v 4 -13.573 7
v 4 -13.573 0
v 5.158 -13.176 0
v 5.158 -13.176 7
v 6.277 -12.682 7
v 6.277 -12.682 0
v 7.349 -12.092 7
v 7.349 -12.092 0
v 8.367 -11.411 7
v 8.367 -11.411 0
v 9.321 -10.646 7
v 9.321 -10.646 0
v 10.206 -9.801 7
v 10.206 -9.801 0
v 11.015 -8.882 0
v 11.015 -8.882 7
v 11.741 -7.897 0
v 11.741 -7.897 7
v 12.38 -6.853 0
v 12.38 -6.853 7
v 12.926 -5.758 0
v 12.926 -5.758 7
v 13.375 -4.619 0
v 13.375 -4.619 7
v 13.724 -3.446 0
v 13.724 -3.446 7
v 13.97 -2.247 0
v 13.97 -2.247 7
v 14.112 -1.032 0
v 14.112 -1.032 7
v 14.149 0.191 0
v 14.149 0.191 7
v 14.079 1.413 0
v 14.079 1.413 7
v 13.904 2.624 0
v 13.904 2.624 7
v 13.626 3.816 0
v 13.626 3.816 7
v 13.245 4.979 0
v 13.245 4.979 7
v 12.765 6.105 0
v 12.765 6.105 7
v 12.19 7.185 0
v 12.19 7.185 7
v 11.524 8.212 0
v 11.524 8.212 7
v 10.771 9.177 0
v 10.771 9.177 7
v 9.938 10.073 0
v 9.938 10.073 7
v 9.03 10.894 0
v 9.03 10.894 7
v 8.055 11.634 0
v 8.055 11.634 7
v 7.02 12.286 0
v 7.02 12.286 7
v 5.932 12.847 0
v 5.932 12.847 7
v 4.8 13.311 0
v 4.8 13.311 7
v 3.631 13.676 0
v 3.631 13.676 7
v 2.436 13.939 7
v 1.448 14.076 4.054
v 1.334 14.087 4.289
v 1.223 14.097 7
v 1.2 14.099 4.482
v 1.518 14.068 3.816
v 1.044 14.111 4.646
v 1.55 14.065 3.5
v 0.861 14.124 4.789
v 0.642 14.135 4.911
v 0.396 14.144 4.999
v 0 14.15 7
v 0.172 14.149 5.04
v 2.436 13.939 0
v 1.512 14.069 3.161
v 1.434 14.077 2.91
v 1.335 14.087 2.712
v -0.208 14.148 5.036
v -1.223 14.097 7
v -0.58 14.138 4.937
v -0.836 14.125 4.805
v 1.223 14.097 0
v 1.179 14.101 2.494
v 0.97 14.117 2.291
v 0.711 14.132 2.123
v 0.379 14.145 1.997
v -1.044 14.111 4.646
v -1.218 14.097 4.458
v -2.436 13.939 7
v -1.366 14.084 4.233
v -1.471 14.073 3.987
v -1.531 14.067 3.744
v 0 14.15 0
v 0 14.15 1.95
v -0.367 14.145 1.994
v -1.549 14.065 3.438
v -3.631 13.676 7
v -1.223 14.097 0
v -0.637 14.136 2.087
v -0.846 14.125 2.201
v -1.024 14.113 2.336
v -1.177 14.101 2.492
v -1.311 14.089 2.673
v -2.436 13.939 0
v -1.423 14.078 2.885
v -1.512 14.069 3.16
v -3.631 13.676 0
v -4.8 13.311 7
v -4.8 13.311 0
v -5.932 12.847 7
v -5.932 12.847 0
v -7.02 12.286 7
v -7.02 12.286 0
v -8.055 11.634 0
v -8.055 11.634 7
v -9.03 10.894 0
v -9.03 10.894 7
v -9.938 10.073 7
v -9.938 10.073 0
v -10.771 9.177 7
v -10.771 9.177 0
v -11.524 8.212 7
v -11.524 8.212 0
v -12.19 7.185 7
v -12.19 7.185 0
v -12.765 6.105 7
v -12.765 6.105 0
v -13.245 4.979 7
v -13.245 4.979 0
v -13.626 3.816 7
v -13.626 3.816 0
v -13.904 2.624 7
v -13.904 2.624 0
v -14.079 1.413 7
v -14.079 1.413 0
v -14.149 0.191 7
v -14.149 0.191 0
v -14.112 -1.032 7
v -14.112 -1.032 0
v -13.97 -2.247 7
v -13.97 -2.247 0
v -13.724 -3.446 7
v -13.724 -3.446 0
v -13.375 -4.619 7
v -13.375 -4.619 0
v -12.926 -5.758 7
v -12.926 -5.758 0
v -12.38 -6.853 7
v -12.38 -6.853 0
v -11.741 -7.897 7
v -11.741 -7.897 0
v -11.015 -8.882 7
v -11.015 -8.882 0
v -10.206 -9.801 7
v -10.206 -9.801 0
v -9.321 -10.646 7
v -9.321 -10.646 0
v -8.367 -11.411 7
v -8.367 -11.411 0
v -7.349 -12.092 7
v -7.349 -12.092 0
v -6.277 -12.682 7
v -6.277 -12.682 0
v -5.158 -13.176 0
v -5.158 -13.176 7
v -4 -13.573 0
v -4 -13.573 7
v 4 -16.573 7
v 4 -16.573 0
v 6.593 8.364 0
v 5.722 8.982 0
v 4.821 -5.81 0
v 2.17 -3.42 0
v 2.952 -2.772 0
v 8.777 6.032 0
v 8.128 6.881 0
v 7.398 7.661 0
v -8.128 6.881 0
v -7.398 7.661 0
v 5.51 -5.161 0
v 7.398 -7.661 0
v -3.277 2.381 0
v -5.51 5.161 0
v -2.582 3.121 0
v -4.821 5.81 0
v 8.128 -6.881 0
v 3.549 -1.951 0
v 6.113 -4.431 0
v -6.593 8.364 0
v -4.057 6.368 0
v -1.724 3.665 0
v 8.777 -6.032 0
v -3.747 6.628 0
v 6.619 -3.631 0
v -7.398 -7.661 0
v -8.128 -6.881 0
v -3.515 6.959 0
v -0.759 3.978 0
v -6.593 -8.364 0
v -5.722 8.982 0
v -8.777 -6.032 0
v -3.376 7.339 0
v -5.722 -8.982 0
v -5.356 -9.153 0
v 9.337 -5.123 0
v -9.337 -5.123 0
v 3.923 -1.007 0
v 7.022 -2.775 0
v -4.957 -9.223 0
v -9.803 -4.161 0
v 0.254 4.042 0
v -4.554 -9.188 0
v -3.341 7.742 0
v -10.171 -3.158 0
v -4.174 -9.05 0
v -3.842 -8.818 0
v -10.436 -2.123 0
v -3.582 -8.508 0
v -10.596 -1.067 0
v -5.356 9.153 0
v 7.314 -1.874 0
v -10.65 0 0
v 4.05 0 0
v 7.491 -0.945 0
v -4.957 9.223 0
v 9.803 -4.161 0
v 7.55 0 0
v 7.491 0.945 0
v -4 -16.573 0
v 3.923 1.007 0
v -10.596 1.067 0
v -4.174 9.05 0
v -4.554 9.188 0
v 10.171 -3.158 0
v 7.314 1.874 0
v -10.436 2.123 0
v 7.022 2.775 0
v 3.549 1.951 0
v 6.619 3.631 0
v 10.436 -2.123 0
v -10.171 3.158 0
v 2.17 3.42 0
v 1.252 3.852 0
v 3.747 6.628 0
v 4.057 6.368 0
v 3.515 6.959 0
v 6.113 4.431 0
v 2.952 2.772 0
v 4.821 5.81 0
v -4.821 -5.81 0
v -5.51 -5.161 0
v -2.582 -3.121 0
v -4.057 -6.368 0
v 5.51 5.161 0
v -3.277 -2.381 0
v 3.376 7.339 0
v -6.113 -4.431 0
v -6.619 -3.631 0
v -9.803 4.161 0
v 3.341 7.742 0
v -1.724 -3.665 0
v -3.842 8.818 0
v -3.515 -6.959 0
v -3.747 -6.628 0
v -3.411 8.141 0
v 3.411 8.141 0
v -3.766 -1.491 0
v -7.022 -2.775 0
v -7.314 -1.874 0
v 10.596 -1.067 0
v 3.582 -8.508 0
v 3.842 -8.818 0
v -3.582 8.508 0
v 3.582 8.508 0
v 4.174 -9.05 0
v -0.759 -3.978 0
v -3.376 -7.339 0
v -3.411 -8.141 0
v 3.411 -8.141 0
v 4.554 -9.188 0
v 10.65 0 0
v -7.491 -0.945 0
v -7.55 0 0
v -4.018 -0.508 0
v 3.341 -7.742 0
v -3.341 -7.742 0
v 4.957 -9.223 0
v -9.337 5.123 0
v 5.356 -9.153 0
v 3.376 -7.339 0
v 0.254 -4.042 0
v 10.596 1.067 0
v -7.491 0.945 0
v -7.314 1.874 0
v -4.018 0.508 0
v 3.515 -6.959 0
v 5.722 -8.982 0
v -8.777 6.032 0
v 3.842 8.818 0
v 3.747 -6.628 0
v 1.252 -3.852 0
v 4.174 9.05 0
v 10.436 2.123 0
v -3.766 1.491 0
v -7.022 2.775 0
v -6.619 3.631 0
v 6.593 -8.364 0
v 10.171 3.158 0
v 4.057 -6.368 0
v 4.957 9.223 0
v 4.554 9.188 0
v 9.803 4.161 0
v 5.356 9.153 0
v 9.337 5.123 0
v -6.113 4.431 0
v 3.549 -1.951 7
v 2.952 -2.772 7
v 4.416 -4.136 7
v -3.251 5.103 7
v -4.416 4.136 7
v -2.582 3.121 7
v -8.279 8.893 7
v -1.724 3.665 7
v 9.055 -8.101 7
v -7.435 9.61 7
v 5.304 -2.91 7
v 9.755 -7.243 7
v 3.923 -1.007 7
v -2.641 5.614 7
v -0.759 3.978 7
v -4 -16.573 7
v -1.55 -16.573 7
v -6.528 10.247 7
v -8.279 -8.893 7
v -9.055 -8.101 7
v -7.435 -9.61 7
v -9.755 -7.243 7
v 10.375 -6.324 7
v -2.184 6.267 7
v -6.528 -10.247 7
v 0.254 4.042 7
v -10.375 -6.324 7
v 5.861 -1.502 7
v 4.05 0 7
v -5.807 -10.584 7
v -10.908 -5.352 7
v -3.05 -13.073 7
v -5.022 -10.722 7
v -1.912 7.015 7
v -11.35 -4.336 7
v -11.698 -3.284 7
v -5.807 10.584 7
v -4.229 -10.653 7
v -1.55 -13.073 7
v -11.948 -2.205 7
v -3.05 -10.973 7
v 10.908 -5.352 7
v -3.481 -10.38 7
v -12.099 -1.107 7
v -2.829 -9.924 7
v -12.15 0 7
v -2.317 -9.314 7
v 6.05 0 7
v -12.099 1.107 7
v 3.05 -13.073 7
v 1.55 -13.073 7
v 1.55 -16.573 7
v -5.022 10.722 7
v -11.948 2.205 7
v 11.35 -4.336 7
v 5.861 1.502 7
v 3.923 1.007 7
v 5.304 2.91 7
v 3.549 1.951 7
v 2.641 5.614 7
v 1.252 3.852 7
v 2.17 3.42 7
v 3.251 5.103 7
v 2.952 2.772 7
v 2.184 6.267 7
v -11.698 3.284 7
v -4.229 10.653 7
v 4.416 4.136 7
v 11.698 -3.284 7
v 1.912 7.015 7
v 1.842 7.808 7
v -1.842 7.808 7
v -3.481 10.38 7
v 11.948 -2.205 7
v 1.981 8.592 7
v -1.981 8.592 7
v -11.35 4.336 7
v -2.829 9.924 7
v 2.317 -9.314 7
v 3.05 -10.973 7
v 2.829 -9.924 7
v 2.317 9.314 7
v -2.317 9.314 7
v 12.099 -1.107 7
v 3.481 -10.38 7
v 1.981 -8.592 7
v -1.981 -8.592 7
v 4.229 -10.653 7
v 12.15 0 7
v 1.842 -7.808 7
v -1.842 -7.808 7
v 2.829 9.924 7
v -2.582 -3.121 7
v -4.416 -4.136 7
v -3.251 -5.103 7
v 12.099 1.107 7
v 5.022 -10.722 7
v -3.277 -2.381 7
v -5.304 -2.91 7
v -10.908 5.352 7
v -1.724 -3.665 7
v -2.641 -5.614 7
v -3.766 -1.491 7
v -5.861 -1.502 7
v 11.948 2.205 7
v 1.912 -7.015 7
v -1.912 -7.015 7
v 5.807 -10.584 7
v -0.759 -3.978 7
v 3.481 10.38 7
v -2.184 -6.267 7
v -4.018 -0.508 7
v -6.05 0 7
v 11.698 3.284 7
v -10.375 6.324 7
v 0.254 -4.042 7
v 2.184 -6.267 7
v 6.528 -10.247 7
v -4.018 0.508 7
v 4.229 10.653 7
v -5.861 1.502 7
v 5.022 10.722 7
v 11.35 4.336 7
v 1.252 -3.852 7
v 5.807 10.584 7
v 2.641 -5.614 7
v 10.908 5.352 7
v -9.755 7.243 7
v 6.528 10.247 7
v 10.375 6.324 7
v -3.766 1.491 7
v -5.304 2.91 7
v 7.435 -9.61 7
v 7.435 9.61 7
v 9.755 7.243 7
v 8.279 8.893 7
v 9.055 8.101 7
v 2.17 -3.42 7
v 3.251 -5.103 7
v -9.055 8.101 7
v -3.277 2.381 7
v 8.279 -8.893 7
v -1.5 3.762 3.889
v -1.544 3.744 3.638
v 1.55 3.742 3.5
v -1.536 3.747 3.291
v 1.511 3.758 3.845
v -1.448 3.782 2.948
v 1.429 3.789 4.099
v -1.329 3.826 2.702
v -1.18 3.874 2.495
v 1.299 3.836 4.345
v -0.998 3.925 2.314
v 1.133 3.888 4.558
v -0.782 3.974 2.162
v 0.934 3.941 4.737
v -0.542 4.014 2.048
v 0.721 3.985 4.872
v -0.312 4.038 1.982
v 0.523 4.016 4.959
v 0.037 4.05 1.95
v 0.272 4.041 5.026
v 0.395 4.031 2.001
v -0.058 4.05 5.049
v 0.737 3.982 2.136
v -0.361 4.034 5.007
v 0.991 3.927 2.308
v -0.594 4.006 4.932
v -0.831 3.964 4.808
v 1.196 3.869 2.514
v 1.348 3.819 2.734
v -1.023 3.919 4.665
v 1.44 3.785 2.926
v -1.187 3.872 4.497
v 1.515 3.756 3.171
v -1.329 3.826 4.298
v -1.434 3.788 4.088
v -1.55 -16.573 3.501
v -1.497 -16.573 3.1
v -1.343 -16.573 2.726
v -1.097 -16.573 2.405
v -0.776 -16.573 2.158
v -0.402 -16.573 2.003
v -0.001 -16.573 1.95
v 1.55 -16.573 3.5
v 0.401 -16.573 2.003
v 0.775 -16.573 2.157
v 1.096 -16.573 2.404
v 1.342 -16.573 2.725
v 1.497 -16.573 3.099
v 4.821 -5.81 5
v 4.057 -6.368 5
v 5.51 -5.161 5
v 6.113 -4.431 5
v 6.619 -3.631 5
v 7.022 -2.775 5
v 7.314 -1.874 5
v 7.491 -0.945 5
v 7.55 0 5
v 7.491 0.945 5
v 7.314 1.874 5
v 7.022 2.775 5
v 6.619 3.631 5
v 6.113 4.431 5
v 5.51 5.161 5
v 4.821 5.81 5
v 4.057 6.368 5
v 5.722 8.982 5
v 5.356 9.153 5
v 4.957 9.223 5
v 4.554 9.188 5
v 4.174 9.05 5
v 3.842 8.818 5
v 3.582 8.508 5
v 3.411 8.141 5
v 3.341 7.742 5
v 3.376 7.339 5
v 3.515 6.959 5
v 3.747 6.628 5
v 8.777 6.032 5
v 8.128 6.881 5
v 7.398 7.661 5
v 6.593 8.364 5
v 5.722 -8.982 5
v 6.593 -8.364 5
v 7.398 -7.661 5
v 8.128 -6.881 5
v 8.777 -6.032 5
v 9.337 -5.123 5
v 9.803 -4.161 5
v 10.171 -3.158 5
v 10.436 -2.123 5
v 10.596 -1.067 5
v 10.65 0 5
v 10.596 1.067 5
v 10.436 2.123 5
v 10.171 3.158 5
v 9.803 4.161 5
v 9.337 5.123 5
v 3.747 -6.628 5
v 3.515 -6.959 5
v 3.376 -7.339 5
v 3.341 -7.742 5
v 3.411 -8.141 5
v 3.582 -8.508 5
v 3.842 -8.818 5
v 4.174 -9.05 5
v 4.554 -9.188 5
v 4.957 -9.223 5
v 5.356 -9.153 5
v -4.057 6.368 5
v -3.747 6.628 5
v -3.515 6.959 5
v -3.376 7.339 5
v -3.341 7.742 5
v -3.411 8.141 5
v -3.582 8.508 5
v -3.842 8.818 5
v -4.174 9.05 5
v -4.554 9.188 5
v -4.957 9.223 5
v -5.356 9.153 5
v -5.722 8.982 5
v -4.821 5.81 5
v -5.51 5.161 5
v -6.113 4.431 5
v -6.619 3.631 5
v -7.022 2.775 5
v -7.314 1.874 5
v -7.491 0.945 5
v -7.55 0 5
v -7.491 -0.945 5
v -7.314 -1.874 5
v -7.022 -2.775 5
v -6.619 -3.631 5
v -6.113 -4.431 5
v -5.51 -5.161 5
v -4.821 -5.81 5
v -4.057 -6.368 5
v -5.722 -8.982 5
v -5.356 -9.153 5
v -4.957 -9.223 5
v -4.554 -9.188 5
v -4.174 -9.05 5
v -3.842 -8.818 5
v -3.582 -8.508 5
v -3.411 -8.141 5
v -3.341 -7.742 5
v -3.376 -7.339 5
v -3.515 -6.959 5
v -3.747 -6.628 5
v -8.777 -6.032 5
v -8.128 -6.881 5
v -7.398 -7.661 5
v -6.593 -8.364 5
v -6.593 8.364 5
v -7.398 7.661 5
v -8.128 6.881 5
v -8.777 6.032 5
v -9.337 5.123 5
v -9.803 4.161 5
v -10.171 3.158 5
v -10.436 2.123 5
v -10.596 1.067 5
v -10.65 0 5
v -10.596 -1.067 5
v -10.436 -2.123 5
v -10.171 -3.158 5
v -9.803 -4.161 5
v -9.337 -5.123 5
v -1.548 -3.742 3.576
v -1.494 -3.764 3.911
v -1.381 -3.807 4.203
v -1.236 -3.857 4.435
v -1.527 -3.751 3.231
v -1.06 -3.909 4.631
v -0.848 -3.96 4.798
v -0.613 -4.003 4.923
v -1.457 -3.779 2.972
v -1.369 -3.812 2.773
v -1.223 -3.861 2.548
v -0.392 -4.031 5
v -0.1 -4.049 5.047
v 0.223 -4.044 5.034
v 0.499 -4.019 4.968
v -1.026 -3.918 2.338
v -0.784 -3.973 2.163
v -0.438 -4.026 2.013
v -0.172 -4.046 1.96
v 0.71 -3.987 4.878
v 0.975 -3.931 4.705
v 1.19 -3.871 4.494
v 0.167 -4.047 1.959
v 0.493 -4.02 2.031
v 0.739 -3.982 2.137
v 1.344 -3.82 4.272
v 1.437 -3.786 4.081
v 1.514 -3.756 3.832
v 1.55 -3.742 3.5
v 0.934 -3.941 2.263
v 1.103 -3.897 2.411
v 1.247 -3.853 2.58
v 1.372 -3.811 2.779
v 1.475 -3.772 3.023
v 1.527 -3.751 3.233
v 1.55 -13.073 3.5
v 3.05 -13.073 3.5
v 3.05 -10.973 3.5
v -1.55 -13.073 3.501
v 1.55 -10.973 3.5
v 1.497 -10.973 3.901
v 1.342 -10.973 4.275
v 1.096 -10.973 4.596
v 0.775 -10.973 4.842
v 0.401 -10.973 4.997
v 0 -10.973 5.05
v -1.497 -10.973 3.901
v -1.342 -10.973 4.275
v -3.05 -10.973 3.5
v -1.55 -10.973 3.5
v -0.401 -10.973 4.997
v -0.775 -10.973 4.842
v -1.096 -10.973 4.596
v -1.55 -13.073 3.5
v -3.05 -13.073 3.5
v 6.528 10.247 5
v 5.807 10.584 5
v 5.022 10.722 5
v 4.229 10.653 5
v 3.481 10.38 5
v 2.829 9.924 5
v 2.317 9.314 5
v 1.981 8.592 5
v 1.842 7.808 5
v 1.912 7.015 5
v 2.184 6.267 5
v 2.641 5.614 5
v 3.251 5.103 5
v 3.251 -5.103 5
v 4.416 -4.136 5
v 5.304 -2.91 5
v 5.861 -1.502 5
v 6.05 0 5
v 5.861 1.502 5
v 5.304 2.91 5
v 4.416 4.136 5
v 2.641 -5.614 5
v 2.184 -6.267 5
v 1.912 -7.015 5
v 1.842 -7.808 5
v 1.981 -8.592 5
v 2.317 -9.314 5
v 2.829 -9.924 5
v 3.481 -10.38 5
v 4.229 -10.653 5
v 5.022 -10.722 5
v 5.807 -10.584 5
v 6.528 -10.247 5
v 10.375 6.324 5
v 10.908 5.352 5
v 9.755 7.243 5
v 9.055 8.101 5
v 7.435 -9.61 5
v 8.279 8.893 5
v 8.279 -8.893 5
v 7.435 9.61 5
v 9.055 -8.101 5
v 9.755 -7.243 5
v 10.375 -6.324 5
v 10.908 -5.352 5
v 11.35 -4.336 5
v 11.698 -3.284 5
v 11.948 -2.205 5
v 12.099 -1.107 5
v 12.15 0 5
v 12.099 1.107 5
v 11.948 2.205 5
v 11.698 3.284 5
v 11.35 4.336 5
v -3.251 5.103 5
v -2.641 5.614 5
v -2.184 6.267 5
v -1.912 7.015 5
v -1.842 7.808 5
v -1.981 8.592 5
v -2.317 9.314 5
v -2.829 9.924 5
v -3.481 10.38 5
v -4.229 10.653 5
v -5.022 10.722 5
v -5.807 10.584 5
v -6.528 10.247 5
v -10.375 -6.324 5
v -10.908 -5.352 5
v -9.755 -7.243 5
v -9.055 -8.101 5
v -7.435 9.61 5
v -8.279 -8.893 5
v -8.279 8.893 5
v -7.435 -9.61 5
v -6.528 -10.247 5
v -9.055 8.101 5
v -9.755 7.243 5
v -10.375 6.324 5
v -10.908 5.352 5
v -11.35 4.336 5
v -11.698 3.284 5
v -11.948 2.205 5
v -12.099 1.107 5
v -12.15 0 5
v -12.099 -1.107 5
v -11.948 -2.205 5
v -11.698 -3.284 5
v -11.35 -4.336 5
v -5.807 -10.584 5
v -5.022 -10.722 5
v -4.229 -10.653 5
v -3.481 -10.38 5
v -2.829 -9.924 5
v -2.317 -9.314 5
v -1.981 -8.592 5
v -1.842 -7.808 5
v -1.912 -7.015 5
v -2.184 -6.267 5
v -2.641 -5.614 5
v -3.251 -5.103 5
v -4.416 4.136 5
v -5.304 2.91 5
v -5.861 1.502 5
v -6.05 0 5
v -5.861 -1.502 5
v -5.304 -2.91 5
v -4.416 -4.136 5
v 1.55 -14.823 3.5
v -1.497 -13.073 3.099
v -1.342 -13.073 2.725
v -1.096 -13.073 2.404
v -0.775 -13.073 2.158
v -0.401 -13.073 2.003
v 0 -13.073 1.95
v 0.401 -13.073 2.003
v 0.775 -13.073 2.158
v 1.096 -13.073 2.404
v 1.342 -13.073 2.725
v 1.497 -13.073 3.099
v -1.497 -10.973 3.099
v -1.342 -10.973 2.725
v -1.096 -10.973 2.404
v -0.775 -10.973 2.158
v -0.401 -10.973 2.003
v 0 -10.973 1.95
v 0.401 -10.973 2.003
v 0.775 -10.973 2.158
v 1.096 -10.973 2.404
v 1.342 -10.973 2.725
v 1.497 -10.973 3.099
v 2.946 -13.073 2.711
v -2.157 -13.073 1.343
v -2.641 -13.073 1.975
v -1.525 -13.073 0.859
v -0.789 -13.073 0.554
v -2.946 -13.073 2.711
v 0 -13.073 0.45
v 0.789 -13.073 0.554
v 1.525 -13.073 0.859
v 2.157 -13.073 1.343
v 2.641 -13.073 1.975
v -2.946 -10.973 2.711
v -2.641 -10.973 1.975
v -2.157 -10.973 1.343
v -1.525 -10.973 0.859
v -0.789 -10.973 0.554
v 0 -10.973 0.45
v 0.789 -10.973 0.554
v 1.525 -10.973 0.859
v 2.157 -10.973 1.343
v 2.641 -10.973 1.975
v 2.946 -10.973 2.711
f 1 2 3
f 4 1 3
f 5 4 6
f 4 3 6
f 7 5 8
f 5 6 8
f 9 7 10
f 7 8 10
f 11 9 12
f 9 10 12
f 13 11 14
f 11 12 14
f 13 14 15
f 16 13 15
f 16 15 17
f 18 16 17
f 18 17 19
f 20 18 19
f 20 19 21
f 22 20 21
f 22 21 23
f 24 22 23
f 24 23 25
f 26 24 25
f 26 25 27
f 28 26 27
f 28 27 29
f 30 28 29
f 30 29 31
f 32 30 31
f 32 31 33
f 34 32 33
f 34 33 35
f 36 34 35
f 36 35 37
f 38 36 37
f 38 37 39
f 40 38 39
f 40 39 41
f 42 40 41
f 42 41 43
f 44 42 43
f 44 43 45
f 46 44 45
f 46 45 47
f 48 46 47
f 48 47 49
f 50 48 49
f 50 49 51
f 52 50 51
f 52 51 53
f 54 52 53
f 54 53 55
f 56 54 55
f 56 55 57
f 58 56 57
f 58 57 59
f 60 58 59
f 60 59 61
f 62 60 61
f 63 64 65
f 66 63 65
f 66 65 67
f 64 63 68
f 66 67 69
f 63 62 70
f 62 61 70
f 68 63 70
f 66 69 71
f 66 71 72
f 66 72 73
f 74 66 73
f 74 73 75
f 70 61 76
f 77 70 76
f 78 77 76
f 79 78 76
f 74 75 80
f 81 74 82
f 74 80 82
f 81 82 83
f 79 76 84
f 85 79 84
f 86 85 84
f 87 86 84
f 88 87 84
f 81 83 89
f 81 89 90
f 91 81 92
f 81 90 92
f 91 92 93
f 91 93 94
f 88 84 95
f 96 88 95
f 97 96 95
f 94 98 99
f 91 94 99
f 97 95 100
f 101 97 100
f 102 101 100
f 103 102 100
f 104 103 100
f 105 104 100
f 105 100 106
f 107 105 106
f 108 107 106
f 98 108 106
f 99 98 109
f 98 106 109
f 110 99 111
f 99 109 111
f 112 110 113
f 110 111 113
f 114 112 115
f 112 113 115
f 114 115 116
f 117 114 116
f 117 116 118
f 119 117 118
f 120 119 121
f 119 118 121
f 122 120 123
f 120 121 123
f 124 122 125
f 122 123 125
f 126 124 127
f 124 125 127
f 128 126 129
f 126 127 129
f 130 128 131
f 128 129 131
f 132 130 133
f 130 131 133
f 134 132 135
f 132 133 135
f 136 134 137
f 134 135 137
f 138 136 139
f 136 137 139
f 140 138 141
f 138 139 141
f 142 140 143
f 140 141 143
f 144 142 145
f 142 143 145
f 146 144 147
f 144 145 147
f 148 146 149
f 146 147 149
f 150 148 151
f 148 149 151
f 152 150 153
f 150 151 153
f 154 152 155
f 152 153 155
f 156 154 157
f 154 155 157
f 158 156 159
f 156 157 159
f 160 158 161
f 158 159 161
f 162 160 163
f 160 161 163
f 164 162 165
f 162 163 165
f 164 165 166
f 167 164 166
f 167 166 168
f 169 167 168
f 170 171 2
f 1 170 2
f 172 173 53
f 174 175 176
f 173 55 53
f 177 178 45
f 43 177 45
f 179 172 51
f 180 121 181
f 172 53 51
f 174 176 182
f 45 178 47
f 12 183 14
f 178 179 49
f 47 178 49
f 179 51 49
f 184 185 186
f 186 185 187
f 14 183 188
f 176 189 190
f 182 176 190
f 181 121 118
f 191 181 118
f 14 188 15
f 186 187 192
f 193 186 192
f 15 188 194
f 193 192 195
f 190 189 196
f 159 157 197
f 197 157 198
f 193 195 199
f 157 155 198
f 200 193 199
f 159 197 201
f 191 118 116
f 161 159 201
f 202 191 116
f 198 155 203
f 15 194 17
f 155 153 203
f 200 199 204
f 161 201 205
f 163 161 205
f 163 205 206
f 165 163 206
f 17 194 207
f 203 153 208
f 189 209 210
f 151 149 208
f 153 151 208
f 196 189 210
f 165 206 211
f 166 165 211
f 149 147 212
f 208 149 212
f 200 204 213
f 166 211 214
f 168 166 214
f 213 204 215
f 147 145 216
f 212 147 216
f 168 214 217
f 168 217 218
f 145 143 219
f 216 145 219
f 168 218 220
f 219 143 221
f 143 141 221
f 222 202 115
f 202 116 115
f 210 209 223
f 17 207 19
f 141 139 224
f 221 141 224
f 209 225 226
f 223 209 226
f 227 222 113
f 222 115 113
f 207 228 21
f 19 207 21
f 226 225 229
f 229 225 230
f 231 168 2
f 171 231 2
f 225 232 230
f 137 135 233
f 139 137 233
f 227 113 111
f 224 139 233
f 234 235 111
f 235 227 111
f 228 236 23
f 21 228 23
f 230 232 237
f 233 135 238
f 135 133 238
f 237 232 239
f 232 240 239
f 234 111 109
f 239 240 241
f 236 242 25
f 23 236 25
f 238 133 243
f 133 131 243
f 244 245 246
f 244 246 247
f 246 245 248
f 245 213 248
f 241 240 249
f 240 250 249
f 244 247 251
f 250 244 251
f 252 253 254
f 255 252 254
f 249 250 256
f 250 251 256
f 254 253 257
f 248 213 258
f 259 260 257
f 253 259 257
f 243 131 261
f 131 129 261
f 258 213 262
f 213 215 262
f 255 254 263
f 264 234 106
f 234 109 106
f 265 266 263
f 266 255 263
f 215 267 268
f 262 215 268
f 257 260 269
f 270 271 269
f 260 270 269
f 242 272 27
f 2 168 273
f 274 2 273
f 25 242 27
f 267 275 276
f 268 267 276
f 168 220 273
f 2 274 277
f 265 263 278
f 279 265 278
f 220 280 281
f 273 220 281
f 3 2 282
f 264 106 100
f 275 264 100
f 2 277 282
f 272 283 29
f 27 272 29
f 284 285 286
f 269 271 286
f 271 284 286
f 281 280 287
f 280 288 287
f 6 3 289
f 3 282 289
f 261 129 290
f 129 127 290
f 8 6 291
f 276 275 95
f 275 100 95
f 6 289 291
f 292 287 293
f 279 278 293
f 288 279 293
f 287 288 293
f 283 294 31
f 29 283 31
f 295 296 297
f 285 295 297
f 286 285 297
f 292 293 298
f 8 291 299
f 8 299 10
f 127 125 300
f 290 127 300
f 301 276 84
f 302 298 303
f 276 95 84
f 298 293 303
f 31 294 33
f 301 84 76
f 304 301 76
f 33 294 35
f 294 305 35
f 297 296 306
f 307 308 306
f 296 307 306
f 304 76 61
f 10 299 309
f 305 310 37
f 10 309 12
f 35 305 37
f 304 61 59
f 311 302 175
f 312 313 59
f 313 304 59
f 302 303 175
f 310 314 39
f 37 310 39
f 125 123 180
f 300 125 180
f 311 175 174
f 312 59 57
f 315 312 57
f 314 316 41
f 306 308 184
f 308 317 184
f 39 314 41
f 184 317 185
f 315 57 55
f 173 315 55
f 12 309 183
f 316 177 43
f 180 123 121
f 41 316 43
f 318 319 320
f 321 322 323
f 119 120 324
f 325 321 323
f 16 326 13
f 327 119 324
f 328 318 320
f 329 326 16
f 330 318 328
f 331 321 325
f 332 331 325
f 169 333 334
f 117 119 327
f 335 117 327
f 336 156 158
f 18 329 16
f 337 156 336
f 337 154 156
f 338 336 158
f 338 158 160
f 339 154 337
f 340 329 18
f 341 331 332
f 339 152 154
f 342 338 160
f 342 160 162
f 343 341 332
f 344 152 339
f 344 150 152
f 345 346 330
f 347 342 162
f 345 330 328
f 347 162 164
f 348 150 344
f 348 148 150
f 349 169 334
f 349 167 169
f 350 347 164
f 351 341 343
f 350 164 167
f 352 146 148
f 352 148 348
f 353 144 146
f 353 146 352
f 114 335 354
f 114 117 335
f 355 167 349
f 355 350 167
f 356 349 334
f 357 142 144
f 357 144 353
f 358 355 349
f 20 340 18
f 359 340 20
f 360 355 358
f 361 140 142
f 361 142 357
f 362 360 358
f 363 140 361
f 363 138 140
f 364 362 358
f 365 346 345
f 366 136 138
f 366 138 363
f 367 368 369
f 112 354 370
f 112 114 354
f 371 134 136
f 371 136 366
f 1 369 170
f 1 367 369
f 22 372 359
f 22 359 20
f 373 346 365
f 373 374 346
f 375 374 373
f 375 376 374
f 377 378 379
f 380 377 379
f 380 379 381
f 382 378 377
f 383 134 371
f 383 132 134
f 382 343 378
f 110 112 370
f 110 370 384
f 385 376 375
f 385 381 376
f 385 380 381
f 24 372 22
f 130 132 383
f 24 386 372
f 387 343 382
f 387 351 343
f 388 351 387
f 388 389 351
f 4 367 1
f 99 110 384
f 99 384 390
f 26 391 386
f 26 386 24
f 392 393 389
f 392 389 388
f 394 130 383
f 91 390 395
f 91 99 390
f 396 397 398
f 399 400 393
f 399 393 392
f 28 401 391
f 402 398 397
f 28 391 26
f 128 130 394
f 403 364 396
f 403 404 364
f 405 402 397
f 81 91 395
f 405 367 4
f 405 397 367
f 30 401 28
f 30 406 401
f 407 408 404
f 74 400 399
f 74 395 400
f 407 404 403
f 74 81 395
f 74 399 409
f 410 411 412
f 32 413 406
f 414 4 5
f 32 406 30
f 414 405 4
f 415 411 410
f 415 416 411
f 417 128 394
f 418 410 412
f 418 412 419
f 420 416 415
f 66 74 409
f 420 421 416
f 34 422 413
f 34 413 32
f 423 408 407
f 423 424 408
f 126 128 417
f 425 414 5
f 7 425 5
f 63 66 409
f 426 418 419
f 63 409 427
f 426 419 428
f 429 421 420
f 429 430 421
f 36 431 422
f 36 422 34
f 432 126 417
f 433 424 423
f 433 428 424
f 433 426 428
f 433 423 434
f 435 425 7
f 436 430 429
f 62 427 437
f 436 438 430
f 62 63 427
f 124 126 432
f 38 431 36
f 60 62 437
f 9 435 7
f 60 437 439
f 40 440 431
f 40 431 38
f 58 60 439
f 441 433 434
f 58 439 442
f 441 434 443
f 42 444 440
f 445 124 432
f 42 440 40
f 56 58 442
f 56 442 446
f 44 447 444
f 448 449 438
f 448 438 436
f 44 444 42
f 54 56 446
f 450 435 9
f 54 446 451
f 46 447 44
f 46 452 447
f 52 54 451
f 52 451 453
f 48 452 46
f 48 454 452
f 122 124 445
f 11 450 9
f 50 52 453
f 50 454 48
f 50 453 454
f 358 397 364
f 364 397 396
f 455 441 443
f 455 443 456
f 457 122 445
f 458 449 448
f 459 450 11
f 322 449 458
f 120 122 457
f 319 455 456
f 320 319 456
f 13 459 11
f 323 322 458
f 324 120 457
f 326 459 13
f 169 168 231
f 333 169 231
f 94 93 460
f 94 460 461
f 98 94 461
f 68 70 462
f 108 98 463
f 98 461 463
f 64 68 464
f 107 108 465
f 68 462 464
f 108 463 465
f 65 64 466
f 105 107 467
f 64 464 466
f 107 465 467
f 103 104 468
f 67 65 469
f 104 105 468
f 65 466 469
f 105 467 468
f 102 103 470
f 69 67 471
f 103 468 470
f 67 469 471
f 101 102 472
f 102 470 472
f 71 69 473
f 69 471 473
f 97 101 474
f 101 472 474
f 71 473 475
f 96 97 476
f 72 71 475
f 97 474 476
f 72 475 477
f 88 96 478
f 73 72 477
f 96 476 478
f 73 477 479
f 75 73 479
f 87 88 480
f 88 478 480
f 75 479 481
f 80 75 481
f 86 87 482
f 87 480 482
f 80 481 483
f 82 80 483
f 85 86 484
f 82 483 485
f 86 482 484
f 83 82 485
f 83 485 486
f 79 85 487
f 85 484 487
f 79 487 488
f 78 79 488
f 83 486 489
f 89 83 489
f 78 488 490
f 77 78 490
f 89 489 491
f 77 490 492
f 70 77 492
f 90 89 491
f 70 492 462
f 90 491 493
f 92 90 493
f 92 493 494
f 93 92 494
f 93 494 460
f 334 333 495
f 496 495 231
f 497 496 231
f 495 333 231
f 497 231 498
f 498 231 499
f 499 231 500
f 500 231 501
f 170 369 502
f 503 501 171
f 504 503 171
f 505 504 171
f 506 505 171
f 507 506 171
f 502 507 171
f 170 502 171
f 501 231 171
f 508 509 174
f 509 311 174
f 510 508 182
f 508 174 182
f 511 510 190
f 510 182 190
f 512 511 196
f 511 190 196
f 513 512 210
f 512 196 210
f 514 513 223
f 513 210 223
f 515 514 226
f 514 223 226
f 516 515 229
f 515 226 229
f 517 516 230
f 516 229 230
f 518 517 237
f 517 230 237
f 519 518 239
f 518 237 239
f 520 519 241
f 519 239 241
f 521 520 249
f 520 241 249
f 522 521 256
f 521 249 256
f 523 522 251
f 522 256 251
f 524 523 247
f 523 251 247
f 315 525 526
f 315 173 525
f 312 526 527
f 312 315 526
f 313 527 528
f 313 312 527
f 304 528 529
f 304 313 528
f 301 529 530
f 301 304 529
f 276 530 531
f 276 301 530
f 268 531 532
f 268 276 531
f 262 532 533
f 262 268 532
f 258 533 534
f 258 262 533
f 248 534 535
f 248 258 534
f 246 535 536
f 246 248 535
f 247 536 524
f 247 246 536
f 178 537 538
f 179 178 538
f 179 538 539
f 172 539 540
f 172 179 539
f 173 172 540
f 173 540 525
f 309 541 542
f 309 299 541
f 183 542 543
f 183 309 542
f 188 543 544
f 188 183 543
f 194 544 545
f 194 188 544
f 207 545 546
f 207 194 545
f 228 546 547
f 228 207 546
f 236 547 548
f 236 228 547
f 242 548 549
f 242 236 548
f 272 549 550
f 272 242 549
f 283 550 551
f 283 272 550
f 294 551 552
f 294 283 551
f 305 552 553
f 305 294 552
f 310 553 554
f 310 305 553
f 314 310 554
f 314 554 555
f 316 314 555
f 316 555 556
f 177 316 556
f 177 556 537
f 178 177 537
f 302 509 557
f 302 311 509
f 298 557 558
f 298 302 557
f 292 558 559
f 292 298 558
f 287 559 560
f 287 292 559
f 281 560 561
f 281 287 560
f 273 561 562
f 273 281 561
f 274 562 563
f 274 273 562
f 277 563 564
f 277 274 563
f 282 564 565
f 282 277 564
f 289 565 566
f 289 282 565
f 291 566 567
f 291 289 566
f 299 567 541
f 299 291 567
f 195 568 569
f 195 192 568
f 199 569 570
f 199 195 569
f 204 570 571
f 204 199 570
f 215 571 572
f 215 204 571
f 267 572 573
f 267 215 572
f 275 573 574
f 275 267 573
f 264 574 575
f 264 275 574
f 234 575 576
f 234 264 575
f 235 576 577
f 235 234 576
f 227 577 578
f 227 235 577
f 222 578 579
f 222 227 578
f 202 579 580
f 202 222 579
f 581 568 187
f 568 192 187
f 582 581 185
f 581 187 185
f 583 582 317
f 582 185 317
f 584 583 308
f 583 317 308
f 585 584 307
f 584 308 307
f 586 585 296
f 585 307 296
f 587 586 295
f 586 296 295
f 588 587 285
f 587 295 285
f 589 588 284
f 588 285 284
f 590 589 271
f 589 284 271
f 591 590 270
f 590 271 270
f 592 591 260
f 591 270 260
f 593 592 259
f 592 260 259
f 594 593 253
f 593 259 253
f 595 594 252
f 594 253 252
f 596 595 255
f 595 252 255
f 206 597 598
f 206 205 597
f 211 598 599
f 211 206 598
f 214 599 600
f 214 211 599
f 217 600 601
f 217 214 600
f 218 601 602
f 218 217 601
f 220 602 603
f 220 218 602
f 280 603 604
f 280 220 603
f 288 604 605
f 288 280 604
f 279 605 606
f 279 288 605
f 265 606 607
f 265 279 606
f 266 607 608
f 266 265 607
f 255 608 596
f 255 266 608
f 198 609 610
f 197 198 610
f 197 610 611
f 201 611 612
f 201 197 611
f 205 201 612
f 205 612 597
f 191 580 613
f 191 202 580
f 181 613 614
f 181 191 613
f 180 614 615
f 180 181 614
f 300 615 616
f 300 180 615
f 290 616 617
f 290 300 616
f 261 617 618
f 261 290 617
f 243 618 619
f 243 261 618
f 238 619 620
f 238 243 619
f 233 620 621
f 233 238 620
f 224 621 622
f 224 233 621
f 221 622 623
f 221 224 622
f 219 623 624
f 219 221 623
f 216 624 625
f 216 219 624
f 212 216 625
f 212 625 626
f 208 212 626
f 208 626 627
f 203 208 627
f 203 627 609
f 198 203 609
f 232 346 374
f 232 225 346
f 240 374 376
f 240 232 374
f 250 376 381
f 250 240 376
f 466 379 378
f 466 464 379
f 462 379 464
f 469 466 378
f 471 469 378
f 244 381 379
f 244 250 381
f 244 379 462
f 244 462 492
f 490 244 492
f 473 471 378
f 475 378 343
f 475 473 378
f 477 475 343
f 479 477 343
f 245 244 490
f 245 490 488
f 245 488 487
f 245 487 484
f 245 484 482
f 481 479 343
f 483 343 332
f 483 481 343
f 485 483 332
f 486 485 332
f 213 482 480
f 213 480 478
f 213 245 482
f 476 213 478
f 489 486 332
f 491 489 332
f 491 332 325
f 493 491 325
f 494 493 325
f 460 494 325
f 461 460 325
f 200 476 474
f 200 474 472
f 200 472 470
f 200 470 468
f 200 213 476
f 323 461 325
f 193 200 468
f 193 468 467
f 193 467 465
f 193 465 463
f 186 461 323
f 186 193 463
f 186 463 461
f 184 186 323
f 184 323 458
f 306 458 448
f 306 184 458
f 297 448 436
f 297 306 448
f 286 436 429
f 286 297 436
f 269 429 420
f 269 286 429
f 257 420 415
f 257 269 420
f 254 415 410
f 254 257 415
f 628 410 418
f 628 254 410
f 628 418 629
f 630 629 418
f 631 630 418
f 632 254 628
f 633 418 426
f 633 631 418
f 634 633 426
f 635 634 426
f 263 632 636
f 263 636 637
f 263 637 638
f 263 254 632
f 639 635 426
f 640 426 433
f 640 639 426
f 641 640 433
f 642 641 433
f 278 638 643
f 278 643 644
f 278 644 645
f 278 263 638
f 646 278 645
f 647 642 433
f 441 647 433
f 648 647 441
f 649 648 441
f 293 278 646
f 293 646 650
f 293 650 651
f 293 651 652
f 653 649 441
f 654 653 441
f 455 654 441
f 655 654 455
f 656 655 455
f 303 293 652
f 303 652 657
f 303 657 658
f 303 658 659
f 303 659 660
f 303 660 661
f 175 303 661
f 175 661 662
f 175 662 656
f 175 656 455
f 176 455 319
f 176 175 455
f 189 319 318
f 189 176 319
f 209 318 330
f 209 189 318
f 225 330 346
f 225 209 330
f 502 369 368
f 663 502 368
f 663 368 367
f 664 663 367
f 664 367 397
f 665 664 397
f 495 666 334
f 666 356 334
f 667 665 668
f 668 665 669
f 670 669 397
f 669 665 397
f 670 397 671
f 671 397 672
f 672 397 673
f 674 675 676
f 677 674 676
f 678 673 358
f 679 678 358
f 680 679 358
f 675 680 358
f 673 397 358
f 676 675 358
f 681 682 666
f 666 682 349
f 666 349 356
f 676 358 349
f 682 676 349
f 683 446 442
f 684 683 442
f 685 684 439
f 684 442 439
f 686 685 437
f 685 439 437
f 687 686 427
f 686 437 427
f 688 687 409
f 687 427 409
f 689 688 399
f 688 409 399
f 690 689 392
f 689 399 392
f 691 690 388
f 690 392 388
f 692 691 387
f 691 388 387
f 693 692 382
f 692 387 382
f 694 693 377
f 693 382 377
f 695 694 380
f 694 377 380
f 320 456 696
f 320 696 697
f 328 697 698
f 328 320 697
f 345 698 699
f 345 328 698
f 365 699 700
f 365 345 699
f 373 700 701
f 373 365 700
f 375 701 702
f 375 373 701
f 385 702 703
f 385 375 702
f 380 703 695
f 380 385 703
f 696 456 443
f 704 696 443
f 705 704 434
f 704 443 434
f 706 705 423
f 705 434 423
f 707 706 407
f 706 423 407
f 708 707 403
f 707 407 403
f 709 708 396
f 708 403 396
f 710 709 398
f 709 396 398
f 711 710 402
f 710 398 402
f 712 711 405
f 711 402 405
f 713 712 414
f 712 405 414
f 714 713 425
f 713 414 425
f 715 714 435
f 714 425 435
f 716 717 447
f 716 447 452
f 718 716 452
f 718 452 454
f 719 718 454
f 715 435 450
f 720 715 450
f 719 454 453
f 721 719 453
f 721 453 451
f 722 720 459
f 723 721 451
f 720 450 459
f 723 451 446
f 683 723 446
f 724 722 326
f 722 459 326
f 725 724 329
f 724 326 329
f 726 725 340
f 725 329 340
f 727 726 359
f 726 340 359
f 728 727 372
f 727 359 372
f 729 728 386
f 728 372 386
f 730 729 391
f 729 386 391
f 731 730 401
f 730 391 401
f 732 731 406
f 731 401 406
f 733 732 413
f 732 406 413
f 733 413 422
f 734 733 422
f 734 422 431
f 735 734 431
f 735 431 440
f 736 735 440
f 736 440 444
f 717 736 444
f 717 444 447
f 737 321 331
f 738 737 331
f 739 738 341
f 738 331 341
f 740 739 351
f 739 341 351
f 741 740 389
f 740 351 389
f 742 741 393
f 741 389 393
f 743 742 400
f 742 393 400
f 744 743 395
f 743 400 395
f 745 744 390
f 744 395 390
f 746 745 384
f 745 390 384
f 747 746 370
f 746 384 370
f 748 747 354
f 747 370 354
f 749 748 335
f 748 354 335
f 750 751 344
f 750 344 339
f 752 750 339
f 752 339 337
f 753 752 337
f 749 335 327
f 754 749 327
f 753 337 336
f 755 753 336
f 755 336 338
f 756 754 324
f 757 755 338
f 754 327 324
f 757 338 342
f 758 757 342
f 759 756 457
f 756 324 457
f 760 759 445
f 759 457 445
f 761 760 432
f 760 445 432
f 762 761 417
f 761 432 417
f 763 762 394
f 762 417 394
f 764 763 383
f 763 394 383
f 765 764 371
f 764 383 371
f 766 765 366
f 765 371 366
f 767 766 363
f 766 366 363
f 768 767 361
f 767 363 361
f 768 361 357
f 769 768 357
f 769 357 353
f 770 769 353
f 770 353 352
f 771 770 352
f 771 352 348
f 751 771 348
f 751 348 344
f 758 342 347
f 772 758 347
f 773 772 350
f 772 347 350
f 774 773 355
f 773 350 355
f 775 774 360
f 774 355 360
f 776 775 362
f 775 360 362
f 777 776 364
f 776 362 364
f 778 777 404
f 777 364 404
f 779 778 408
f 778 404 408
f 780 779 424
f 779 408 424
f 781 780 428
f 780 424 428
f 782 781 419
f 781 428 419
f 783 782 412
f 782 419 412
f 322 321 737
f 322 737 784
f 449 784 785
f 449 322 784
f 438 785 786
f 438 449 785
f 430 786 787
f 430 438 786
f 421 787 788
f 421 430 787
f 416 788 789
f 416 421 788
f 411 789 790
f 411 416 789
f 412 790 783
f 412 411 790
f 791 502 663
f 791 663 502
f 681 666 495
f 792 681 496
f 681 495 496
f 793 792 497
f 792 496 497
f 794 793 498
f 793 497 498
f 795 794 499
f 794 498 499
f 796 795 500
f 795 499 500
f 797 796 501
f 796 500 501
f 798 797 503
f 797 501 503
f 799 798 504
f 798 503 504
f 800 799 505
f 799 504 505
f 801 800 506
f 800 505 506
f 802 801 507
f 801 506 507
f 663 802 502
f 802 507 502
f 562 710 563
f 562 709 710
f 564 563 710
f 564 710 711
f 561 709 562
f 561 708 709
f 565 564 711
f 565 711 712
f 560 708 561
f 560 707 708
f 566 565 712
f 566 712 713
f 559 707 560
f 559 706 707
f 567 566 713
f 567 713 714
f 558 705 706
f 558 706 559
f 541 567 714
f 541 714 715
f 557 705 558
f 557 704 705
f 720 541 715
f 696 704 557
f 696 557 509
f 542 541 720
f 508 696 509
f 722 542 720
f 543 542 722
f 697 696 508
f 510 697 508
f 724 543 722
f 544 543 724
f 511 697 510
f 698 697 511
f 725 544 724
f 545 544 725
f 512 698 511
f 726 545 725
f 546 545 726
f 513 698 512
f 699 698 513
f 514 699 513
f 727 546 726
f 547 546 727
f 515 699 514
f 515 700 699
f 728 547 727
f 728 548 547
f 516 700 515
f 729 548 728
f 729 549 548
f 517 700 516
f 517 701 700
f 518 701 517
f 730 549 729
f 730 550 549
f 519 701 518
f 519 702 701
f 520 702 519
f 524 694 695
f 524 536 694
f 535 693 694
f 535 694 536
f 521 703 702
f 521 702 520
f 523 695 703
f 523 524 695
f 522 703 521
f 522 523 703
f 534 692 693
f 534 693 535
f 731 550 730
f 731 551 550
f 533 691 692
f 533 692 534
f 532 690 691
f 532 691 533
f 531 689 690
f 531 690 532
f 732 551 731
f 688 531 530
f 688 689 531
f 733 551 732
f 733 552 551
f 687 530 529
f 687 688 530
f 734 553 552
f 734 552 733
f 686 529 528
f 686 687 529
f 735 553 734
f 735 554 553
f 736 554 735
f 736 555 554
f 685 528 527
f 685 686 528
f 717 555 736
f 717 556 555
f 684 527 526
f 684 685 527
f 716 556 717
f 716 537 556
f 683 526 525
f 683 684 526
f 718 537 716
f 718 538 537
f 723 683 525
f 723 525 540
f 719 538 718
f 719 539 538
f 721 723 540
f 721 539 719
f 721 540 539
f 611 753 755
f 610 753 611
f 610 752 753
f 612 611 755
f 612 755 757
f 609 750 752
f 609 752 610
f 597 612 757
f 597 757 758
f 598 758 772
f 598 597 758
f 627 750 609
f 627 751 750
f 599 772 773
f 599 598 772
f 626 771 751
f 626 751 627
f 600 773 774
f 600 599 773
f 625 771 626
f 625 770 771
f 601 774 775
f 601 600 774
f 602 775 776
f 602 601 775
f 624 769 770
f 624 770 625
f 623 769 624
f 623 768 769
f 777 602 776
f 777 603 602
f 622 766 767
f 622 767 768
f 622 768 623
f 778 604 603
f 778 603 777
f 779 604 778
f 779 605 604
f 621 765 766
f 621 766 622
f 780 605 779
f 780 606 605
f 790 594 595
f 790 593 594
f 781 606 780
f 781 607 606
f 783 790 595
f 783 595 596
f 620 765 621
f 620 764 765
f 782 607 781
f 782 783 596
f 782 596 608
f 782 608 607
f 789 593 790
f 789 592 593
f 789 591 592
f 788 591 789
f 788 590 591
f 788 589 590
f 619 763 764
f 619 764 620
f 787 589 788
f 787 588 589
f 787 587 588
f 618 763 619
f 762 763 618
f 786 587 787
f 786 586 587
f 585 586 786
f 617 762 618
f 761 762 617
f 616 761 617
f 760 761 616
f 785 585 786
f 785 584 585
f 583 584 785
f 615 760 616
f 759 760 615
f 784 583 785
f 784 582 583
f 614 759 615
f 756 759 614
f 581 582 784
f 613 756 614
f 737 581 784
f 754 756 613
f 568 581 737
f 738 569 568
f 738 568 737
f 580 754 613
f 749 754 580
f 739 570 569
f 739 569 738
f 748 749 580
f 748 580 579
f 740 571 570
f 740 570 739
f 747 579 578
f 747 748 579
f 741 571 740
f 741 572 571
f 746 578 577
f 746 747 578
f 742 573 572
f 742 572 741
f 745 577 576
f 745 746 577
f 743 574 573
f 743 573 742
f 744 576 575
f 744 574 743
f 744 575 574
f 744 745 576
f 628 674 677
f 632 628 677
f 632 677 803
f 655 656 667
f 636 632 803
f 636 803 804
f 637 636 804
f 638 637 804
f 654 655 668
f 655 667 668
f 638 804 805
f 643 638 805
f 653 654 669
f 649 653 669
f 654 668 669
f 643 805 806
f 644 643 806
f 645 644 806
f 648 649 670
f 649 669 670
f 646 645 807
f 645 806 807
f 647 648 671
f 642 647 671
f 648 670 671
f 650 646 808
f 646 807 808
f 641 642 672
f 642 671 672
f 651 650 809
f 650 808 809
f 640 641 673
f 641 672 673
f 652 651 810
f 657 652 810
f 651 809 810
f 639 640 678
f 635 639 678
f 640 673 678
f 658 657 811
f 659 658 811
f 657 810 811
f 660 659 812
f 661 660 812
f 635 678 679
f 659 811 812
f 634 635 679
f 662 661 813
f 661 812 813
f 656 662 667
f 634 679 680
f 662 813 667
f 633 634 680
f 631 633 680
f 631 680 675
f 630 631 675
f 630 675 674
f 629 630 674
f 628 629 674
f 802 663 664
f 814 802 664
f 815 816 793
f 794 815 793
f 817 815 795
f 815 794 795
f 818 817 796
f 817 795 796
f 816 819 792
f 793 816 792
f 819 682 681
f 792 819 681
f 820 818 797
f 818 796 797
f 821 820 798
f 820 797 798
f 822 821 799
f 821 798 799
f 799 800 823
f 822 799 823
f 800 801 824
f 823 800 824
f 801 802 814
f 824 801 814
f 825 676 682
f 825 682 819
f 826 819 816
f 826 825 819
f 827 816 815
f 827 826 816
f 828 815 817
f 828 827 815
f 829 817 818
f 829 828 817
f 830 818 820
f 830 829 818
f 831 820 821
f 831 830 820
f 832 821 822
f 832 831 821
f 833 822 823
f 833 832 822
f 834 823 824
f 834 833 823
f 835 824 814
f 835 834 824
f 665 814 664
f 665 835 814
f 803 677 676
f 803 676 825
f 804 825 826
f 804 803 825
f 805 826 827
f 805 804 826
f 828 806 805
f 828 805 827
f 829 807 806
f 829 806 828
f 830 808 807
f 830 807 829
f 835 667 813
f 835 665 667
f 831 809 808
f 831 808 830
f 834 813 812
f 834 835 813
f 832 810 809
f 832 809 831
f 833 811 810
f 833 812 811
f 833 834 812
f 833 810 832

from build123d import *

# Parameters (mm, degrees)
SKETCH_R        = 4.05
EXTRUDE_DEPTH   = 7
SKETCH001_R     = 1.55
POCKET_DEPTH    = 30.723859
POCKET001_DEPTH = 3.5
POCKET002_DEPTH = 2.1
POCKET003_DEPTH = 2


with BuildPart() as part:
    # Sketch → Extrude (new body)
    with BuildSketch(Plane.XY):
        with BuildLine():
            ThreePointArc((4, -13.572859), (0, 14.15), (-4, -13.572859))
            Line((-4, -13.572859), (-4, -16.572859))
            Line((-4, -16.572859), (4, -16.572859))
            Line((4, -16.572859), (4, -13.572859))
        make_face()
        Circle(SKETCH_R, mode=Mode.SUBTRACT)
        with BuildLine():
            ThreePointArc((-4.056612, 6.367605), (-7.55, 0), (-4.056612, -6.367605))
            ThreePointArc((-5.722241, -8.982119), (-3.58217, -8.507677), (-4.056612, -6.367605))
            ThreePointArc((-5.722241, 8.982119), (-10.65, 0), (-5.722241, -8.982119))
            ThreePointArc((-4.056612, 6.367605), (-3.58217, 8.507677), (-5.722241, 8.982119))
        make_face(mode=Mode.SUBTRACT)
        with BuildLine():
            ThreePointArc((4.056612, -6.367605), (7.55, 0), (4.056612, 6.367605))
            ThreePointArc((5.722241, 8.982119), (3.58217, 8.507677), (4.056612, 6.367605))
            ThreePointArc((5.722241, -8.982119), (10.65, 0), (5.722241, 8.982119))
            ThreePointArc((4.056612, -6.367605), (3.58217, -8.507677), (5.722241, -8.982119))
        make_face(mode=Mode.SUBTRACT)
    extrude(amount=EXTRUDE_DEPTH)

    # Sketch001 → Pocket (cut, through all)
    with BuildSketch(Plane.XZ.offset(16.572859)):
        with Locations((0, 3.5)):
            Circle(SKETCH001_R)
    extrude(amount=-POCKET_DEPTH, mode=Mode.SUBTRACT)

    # Sketch002 → Pocket001 (cut)
    with BuildSketch(Plane.XY.offset(7)):
        Polygon((-3.049999, -10.972859), (-3.049999, -13.072859), (-1.549999, -13.072859), (-1.549999, -16.572859), (1.550001, -16.572859), (1.550001, -13.072859), (3.050001, -13.072859), (3.050001, -10.972859), align=None)
    extrude(amount=-POCKET001_DEPTH, mode=Mode.SUBTRACT)

    # Sketch003 → Pocket002 (cut)
    with BuildSketch(Plane.XZ.offset(10.972859)):
        with BuildLine():
            ThreePointArc((-3.050001, 3.5), (0, 0.449999), (3.050001, 3.5))
            Line((-3.050001, 3.5), (3.050001, 3.5))
        make_face()
    extrude(amount=POCKET002_DEPTH, mode=Mode.SUBTRACT)

    # Sketch004 → Pocket003 (cut)
    with BuildSketch(Plane.XY.offset(7)):
        with BuildLine():
            ThreePointArc((-3.250663, 5.102518), (-2.317083, 9.313626), (-6.52819, 10.247206))
            ThreePointArc((-6.52819, 10.247206), (-12.15, 0), (-6.52819, -10.247206))
            ThreePointArc((-6.52819, -10.247206), (-2.317083, -9.313626), (-3.250663, -5.102518))
            ThreePointArc((-3.250663, 5.102518), (-6.05, 0), (-3.250663, -5.102518))
        make_face()
        with BuildLine():
            ThreePointArc((6.52819, 10.247206), (2.317083, 9.313626), (3.250663, 5.102518))
            ThreePointArc((3.250663, -5.102518), (6.05, 0), (3.250663, 5.102518))
            ThreePointArc((3.250663, -5.102518), (2.317083, -9.313626), (6.52819, -10.247206))
            ThreePointArc((6.52819, -10.247206), (12.15, 0), (6.52819, 10.247206))
        make_face()
    extrude(amount=-POCKET003_DEPTH, mode=Mode.SUBTRACT)


solid = part.part
